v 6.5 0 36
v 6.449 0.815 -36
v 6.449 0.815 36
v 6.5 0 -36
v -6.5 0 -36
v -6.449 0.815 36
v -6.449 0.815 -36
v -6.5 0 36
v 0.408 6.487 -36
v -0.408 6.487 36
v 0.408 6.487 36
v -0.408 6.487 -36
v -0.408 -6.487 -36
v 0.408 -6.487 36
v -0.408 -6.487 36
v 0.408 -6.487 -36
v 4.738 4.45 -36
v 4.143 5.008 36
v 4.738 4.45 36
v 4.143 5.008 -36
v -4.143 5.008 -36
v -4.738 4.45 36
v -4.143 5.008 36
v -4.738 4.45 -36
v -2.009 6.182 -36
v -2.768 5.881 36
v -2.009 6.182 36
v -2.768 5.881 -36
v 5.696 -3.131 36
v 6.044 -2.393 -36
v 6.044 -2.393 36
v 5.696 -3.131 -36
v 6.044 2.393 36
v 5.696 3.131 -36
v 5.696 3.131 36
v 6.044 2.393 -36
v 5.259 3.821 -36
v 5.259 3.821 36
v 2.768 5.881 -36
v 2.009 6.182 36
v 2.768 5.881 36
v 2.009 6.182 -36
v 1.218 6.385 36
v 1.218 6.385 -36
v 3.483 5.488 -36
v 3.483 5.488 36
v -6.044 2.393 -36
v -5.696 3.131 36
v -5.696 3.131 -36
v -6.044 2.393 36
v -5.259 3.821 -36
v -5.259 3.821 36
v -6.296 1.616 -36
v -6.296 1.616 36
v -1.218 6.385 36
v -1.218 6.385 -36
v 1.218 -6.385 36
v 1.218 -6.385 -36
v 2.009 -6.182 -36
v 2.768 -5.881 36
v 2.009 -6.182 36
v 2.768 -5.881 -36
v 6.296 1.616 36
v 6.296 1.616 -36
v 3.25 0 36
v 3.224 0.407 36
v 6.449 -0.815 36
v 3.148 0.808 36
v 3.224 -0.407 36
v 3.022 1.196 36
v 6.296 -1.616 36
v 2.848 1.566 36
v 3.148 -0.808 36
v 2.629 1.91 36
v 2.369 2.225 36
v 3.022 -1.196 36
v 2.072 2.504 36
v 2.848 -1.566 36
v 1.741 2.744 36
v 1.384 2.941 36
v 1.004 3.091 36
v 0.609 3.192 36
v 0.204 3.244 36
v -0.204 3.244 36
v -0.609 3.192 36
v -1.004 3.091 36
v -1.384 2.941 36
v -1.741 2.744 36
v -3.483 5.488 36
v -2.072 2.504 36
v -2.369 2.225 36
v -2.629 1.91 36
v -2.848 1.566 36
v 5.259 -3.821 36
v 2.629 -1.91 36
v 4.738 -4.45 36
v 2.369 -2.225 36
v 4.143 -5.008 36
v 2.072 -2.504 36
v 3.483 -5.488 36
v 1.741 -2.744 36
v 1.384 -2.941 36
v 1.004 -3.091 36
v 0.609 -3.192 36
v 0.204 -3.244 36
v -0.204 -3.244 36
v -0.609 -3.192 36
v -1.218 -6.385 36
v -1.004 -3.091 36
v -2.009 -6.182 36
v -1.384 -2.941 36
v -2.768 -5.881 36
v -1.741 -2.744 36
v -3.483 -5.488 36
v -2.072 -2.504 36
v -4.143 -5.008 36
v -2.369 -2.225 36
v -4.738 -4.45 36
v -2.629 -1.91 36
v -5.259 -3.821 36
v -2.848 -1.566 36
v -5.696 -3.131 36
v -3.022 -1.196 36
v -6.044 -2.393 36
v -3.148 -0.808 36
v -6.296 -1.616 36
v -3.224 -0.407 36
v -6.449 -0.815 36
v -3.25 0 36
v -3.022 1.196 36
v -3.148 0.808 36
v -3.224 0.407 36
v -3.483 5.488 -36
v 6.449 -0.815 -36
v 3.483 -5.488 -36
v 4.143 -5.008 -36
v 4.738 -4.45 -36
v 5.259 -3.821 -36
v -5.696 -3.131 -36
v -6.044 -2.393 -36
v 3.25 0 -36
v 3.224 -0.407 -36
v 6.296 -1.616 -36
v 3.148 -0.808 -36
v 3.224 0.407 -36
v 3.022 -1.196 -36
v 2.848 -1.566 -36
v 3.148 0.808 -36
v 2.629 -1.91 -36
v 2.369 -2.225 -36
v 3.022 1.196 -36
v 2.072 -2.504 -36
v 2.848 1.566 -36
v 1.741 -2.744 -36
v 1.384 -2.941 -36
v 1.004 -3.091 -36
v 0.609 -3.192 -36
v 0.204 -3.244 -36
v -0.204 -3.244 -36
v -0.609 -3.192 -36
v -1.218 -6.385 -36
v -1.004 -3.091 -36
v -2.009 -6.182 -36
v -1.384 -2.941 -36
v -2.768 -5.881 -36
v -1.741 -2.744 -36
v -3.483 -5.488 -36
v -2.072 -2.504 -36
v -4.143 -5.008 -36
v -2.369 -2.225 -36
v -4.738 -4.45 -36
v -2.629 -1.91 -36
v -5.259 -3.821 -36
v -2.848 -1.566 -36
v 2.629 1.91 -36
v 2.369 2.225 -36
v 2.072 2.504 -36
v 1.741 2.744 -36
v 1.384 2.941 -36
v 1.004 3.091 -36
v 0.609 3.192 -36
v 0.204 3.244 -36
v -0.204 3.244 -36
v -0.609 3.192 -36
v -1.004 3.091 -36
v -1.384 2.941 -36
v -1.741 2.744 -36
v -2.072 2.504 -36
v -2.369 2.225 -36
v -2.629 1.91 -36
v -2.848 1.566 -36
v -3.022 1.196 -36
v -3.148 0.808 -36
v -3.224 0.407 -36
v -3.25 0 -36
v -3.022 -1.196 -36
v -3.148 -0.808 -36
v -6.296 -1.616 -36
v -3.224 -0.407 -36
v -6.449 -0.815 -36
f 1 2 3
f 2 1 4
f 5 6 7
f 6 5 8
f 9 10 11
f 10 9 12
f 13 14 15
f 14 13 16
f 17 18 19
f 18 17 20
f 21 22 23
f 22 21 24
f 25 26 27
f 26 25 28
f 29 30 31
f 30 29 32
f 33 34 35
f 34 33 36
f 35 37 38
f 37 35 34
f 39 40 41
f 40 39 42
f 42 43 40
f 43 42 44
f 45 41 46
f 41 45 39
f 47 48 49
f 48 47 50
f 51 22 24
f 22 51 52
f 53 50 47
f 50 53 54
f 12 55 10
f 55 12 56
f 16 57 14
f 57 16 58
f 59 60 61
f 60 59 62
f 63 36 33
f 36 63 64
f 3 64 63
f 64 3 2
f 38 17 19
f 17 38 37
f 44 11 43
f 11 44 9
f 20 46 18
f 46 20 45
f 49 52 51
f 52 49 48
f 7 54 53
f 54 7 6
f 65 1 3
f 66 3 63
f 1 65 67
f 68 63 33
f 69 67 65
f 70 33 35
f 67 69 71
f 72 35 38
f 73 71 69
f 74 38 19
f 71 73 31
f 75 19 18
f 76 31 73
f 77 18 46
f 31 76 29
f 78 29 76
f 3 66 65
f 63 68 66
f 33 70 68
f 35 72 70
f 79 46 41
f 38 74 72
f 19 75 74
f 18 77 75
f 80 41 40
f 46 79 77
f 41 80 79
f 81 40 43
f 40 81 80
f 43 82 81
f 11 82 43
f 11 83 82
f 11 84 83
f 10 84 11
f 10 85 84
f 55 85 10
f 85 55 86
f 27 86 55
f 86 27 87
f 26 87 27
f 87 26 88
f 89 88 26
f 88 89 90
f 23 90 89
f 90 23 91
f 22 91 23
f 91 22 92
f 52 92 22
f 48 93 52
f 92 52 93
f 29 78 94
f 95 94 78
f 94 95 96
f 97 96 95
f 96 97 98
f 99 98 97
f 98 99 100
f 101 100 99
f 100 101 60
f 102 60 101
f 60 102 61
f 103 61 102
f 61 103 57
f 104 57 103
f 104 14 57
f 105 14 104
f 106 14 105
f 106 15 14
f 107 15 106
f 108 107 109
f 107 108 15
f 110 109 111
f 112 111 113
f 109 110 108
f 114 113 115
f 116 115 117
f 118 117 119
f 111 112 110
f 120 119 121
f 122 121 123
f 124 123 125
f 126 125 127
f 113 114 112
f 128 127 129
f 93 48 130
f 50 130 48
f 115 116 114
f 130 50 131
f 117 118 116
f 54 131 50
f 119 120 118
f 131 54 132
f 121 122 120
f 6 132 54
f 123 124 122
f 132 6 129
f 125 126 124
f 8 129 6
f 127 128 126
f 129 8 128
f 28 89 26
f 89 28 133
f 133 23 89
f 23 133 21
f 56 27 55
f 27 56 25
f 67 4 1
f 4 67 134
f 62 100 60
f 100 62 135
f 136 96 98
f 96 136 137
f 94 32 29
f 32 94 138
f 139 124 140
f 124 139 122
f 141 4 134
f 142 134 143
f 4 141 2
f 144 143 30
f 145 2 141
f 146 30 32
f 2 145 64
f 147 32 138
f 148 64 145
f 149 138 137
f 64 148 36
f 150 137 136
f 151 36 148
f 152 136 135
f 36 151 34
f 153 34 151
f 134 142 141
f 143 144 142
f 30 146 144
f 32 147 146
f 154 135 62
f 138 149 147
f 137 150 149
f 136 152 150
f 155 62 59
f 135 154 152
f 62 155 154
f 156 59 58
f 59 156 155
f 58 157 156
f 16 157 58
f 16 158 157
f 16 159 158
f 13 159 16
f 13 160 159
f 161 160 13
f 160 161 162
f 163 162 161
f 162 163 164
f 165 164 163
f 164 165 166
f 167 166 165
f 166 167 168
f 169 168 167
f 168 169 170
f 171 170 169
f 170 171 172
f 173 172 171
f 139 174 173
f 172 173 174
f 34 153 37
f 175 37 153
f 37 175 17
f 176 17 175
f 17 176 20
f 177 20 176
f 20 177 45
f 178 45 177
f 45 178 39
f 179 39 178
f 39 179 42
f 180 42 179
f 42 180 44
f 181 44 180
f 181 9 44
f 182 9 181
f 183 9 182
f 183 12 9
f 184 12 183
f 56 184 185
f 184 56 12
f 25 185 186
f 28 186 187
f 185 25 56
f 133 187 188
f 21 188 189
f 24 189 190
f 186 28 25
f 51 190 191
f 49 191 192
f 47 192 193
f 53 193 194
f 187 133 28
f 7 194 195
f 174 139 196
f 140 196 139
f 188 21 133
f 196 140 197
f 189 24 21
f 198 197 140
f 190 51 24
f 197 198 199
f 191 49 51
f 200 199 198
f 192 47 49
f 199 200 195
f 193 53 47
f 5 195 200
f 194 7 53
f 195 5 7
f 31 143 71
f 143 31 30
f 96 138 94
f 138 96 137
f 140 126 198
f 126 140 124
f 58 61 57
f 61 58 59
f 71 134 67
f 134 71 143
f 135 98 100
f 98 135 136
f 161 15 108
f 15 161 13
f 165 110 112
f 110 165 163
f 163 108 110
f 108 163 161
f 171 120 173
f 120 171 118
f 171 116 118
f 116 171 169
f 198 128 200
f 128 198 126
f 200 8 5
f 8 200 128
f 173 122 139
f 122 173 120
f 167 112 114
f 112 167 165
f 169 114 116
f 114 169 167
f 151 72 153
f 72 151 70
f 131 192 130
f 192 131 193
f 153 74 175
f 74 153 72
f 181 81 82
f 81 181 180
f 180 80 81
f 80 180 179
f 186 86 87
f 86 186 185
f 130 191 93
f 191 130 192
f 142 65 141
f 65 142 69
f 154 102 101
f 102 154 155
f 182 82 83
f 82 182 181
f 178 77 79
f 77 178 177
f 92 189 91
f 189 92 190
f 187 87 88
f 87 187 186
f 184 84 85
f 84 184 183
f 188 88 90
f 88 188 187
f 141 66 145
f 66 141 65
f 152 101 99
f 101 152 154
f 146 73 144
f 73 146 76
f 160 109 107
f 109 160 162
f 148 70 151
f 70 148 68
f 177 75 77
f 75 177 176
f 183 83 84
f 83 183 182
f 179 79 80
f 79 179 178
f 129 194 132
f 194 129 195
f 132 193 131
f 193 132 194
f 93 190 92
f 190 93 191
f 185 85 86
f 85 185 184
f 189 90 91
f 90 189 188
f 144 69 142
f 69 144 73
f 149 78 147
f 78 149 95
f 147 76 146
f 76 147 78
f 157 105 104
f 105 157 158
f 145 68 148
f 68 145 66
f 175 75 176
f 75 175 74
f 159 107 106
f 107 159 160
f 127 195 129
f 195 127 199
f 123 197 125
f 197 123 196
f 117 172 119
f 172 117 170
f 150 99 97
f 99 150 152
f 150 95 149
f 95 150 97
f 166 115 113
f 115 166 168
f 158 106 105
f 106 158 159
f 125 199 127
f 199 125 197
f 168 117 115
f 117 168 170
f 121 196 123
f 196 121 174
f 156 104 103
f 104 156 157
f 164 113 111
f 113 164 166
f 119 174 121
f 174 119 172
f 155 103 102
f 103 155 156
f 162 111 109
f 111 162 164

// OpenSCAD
$fn = 50;


difference() {
	union() {
		translate(v = [0, 0, -36.0000000000]) {
			cylinder(h = 72, r = 6.5000000000);
		}
	}
	union() {
		translate(v = [0, 0, -100.0000000000]) {
			cylinder(h = 200, r = 3.2500000000);
		}
	}
}
